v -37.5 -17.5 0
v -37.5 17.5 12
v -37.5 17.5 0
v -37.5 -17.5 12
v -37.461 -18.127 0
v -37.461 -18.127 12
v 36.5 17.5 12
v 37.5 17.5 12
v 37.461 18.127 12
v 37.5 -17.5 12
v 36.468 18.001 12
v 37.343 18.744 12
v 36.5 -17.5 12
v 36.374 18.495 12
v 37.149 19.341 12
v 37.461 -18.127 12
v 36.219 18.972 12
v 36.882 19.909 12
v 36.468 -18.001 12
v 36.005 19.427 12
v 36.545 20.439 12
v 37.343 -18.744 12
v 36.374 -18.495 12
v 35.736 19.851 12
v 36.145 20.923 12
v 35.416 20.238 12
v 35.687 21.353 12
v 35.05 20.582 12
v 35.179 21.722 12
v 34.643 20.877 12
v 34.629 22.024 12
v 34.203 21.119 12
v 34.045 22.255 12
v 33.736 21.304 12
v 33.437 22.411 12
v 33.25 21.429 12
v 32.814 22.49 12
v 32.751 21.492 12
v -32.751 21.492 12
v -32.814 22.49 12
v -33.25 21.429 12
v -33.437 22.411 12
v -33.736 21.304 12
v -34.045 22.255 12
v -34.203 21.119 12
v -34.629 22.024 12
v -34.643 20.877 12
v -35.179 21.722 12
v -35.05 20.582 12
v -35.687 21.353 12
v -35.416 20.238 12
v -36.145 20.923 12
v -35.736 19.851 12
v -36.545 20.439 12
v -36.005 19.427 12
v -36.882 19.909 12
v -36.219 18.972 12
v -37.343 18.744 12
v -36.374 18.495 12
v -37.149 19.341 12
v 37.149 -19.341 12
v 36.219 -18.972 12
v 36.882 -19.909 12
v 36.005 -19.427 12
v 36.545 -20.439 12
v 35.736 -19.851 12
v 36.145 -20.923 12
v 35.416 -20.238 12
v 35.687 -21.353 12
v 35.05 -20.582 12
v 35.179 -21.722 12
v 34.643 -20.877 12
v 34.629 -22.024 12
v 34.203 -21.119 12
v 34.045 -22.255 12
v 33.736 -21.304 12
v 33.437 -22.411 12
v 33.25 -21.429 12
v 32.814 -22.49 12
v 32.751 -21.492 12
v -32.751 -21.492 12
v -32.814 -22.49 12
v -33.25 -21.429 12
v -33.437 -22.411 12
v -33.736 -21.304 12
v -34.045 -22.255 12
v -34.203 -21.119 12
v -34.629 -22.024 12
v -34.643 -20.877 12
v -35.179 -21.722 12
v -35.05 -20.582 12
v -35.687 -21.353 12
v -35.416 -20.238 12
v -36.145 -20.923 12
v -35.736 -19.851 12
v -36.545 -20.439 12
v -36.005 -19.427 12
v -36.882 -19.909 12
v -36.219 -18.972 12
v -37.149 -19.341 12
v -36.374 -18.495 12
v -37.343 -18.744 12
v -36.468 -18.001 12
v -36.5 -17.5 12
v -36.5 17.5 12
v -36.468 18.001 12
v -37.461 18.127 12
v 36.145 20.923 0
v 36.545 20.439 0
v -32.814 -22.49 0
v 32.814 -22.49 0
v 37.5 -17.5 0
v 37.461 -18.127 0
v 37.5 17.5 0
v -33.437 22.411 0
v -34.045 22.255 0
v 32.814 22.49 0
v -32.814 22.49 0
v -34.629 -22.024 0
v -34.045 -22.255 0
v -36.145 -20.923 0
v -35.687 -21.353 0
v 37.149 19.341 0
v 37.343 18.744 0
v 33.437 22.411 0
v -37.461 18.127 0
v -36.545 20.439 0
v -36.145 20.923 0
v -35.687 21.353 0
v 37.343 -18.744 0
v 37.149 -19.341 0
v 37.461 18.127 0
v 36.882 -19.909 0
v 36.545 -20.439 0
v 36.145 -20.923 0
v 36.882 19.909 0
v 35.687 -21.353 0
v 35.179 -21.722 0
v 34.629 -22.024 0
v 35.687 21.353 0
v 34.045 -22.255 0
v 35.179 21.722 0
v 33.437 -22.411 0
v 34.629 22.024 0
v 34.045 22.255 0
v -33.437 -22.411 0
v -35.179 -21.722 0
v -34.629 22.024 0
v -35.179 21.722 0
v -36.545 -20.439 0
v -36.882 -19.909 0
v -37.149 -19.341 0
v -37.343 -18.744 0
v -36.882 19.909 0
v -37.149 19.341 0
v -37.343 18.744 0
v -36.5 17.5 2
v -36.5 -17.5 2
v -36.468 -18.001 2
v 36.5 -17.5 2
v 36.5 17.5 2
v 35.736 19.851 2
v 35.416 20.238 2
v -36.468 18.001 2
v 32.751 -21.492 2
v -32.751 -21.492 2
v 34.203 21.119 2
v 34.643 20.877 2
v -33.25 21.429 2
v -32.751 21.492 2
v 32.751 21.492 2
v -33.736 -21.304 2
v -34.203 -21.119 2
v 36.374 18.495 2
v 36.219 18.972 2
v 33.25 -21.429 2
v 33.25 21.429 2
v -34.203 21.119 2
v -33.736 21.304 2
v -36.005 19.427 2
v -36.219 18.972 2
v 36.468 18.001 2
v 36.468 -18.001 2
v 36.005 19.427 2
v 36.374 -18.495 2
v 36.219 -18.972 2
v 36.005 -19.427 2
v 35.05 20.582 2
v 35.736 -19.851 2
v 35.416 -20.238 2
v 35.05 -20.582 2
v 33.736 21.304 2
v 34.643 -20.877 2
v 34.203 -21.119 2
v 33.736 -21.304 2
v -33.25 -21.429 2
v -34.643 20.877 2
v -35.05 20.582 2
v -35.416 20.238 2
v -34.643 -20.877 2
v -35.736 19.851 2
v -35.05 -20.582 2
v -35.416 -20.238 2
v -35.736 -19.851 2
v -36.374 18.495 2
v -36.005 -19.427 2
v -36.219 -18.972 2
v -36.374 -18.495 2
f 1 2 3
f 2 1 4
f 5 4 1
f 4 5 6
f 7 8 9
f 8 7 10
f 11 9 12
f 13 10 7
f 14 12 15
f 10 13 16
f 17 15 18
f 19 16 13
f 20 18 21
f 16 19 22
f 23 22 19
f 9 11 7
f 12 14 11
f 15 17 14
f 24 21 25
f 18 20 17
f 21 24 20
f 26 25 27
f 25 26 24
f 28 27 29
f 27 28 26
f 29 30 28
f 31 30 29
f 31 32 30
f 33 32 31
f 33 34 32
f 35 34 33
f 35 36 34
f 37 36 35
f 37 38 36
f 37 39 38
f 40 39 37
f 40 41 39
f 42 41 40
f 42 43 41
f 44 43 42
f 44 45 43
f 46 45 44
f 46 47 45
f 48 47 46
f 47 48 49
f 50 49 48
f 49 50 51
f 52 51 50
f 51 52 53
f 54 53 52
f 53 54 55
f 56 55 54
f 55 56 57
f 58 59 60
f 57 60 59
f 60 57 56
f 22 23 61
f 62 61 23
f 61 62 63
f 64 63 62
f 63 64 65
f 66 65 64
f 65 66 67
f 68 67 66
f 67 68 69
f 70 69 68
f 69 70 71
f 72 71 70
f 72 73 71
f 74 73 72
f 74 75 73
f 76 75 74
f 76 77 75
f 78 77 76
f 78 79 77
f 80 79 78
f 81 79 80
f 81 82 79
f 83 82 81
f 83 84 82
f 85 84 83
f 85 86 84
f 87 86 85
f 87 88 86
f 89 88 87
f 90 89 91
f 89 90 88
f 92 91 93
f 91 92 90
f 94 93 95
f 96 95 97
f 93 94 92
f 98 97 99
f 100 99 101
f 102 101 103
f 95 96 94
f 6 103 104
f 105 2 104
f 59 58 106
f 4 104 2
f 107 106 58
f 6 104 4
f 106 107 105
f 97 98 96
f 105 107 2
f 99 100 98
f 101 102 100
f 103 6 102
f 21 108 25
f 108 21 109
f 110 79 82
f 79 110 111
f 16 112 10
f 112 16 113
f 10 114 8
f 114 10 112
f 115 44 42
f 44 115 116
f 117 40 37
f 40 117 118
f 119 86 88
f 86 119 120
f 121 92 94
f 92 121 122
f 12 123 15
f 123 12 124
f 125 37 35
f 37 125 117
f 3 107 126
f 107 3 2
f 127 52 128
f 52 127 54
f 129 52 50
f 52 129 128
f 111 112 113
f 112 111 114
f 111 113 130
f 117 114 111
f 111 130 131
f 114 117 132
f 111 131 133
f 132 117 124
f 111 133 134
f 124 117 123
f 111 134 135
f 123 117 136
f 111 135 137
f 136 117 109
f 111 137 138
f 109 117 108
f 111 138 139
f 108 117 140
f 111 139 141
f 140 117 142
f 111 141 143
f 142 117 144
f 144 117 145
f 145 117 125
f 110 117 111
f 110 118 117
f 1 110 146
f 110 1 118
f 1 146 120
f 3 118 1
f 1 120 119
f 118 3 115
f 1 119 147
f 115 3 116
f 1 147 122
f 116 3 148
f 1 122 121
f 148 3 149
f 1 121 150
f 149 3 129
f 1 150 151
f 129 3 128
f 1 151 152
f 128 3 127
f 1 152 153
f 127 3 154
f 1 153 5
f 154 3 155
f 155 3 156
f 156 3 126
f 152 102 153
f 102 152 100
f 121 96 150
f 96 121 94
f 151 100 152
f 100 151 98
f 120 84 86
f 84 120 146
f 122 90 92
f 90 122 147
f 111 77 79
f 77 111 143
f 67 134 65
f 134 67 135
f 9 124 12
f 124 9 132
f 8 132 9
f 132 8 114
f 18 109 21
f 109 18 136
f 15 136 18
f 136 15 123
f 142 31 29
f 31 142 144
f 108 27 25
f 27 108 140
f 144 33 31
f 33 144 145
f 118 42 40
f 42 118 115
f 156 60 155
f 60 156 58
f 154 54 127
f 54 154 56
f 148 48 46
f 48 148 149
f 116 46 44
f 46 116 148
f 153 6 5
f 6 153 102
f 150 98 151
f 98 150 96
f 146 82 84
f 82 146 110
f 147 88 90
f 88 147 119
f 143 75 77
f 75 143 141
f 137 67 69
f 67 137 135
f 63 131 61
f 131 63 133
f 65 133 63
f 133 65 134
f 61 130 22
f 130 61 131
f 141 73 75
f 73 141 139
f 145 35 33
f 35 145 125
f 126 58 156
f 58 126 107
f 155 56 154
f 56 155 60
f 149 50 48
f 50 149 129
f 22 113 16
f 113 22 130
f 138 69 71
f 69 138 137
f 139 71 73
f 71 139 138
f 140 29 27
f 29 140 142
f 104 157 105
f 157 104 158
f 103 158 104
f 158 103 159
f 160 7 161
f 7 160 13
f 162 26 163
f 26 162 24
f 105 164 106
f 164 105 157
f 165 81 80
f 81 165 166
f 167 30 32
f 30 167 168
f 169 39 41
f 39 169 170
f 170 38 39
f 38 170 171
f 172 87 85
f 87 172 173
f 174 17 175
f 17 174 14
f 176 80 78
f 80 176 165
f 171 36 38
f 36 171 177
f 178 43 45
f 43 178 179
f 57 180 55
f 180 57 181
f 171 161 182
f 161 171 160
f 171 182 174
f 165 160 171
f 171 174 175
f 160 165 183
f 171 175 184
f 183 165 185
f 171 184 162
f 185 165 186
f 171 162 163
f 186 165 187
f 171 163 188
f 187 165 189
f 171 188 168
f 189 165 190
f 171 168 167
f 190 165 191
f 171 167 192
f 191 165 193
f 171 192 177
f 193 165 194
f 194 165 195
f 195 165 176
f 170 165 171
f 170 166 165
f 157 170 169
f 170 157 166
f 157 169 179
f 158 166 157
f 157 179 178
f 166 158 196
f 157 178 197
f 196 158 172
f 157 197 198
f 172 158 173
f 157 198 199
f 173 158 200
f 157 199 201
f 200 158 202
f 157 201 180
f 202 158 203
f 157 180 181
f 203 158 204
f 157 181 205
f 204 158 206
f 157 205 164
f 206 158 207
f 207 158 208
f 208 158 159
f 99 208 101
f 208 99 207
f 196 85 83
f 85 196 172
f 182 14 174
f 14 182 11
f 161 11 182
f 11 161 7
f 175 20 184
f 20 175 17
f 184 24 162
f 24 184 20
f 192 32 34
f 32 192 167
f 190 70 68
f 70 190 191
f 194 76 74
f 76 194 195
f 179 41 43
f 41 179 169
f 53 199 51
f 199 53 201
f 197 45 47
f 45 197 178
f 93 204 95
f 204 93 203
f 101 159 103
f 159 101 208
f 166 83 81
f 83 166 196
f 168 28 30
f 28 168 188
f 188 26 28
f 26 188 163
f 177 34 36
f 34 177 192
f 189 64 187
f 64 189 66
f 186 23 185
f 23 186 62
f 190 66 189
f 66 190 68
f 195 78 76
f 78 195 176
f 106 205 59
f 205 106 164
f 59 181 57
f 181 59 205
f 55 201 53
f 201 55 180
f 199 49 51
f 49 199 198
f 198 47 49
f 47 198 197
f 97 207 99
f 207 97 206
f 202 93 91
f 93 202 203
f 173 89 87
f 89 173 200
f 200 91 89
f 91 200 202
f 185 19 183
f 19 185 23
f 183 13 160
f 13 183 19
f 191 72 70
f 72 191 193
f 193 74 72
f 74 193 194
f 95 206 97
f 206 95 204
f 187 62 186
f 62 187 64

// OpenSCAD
$fn = 50;


difference() {
	union() {
		hull() {
			translate(v = [-32.5000000000, 17.5000000000, 0]) {
				cylinder(h = 12, r = 5);
			}
			translate(v = [32.5000000000, 17.5000000000, 0]) {
				cylinder(h = 12, r = 5);
			}
			translate(v = [-32.5000000000, -17.5000000000, 0]) {
				cylinder(h = 12, r = 5);
			}
			translate(v = [32.5000000000, -17.5000000000, 0]) {
				cylinder(h = 12, r = 5);
			}
		}
	}
	union() {
		translate(v = [0, 0, 2]) {
			hull() {
				translate(v = [-32.5000000000, 17.5000000000, 0]) {
					cylinder(h = 10, r = 4);
				}
				translate(v = [32.5000000000, 17.5000000000, 0]) {
					cylinder(h = 10, r = 4);
				}
				translate(v = [-32.5000000000, -17.5000000000, 0]) {
					cylinder(h = 10, r = 4);
				}
				translate(v = [32.5000000000, -17.5000000000, 0]) {
					cylinder(h = 10, r = 4);
				}
			}
		}
	}
}
